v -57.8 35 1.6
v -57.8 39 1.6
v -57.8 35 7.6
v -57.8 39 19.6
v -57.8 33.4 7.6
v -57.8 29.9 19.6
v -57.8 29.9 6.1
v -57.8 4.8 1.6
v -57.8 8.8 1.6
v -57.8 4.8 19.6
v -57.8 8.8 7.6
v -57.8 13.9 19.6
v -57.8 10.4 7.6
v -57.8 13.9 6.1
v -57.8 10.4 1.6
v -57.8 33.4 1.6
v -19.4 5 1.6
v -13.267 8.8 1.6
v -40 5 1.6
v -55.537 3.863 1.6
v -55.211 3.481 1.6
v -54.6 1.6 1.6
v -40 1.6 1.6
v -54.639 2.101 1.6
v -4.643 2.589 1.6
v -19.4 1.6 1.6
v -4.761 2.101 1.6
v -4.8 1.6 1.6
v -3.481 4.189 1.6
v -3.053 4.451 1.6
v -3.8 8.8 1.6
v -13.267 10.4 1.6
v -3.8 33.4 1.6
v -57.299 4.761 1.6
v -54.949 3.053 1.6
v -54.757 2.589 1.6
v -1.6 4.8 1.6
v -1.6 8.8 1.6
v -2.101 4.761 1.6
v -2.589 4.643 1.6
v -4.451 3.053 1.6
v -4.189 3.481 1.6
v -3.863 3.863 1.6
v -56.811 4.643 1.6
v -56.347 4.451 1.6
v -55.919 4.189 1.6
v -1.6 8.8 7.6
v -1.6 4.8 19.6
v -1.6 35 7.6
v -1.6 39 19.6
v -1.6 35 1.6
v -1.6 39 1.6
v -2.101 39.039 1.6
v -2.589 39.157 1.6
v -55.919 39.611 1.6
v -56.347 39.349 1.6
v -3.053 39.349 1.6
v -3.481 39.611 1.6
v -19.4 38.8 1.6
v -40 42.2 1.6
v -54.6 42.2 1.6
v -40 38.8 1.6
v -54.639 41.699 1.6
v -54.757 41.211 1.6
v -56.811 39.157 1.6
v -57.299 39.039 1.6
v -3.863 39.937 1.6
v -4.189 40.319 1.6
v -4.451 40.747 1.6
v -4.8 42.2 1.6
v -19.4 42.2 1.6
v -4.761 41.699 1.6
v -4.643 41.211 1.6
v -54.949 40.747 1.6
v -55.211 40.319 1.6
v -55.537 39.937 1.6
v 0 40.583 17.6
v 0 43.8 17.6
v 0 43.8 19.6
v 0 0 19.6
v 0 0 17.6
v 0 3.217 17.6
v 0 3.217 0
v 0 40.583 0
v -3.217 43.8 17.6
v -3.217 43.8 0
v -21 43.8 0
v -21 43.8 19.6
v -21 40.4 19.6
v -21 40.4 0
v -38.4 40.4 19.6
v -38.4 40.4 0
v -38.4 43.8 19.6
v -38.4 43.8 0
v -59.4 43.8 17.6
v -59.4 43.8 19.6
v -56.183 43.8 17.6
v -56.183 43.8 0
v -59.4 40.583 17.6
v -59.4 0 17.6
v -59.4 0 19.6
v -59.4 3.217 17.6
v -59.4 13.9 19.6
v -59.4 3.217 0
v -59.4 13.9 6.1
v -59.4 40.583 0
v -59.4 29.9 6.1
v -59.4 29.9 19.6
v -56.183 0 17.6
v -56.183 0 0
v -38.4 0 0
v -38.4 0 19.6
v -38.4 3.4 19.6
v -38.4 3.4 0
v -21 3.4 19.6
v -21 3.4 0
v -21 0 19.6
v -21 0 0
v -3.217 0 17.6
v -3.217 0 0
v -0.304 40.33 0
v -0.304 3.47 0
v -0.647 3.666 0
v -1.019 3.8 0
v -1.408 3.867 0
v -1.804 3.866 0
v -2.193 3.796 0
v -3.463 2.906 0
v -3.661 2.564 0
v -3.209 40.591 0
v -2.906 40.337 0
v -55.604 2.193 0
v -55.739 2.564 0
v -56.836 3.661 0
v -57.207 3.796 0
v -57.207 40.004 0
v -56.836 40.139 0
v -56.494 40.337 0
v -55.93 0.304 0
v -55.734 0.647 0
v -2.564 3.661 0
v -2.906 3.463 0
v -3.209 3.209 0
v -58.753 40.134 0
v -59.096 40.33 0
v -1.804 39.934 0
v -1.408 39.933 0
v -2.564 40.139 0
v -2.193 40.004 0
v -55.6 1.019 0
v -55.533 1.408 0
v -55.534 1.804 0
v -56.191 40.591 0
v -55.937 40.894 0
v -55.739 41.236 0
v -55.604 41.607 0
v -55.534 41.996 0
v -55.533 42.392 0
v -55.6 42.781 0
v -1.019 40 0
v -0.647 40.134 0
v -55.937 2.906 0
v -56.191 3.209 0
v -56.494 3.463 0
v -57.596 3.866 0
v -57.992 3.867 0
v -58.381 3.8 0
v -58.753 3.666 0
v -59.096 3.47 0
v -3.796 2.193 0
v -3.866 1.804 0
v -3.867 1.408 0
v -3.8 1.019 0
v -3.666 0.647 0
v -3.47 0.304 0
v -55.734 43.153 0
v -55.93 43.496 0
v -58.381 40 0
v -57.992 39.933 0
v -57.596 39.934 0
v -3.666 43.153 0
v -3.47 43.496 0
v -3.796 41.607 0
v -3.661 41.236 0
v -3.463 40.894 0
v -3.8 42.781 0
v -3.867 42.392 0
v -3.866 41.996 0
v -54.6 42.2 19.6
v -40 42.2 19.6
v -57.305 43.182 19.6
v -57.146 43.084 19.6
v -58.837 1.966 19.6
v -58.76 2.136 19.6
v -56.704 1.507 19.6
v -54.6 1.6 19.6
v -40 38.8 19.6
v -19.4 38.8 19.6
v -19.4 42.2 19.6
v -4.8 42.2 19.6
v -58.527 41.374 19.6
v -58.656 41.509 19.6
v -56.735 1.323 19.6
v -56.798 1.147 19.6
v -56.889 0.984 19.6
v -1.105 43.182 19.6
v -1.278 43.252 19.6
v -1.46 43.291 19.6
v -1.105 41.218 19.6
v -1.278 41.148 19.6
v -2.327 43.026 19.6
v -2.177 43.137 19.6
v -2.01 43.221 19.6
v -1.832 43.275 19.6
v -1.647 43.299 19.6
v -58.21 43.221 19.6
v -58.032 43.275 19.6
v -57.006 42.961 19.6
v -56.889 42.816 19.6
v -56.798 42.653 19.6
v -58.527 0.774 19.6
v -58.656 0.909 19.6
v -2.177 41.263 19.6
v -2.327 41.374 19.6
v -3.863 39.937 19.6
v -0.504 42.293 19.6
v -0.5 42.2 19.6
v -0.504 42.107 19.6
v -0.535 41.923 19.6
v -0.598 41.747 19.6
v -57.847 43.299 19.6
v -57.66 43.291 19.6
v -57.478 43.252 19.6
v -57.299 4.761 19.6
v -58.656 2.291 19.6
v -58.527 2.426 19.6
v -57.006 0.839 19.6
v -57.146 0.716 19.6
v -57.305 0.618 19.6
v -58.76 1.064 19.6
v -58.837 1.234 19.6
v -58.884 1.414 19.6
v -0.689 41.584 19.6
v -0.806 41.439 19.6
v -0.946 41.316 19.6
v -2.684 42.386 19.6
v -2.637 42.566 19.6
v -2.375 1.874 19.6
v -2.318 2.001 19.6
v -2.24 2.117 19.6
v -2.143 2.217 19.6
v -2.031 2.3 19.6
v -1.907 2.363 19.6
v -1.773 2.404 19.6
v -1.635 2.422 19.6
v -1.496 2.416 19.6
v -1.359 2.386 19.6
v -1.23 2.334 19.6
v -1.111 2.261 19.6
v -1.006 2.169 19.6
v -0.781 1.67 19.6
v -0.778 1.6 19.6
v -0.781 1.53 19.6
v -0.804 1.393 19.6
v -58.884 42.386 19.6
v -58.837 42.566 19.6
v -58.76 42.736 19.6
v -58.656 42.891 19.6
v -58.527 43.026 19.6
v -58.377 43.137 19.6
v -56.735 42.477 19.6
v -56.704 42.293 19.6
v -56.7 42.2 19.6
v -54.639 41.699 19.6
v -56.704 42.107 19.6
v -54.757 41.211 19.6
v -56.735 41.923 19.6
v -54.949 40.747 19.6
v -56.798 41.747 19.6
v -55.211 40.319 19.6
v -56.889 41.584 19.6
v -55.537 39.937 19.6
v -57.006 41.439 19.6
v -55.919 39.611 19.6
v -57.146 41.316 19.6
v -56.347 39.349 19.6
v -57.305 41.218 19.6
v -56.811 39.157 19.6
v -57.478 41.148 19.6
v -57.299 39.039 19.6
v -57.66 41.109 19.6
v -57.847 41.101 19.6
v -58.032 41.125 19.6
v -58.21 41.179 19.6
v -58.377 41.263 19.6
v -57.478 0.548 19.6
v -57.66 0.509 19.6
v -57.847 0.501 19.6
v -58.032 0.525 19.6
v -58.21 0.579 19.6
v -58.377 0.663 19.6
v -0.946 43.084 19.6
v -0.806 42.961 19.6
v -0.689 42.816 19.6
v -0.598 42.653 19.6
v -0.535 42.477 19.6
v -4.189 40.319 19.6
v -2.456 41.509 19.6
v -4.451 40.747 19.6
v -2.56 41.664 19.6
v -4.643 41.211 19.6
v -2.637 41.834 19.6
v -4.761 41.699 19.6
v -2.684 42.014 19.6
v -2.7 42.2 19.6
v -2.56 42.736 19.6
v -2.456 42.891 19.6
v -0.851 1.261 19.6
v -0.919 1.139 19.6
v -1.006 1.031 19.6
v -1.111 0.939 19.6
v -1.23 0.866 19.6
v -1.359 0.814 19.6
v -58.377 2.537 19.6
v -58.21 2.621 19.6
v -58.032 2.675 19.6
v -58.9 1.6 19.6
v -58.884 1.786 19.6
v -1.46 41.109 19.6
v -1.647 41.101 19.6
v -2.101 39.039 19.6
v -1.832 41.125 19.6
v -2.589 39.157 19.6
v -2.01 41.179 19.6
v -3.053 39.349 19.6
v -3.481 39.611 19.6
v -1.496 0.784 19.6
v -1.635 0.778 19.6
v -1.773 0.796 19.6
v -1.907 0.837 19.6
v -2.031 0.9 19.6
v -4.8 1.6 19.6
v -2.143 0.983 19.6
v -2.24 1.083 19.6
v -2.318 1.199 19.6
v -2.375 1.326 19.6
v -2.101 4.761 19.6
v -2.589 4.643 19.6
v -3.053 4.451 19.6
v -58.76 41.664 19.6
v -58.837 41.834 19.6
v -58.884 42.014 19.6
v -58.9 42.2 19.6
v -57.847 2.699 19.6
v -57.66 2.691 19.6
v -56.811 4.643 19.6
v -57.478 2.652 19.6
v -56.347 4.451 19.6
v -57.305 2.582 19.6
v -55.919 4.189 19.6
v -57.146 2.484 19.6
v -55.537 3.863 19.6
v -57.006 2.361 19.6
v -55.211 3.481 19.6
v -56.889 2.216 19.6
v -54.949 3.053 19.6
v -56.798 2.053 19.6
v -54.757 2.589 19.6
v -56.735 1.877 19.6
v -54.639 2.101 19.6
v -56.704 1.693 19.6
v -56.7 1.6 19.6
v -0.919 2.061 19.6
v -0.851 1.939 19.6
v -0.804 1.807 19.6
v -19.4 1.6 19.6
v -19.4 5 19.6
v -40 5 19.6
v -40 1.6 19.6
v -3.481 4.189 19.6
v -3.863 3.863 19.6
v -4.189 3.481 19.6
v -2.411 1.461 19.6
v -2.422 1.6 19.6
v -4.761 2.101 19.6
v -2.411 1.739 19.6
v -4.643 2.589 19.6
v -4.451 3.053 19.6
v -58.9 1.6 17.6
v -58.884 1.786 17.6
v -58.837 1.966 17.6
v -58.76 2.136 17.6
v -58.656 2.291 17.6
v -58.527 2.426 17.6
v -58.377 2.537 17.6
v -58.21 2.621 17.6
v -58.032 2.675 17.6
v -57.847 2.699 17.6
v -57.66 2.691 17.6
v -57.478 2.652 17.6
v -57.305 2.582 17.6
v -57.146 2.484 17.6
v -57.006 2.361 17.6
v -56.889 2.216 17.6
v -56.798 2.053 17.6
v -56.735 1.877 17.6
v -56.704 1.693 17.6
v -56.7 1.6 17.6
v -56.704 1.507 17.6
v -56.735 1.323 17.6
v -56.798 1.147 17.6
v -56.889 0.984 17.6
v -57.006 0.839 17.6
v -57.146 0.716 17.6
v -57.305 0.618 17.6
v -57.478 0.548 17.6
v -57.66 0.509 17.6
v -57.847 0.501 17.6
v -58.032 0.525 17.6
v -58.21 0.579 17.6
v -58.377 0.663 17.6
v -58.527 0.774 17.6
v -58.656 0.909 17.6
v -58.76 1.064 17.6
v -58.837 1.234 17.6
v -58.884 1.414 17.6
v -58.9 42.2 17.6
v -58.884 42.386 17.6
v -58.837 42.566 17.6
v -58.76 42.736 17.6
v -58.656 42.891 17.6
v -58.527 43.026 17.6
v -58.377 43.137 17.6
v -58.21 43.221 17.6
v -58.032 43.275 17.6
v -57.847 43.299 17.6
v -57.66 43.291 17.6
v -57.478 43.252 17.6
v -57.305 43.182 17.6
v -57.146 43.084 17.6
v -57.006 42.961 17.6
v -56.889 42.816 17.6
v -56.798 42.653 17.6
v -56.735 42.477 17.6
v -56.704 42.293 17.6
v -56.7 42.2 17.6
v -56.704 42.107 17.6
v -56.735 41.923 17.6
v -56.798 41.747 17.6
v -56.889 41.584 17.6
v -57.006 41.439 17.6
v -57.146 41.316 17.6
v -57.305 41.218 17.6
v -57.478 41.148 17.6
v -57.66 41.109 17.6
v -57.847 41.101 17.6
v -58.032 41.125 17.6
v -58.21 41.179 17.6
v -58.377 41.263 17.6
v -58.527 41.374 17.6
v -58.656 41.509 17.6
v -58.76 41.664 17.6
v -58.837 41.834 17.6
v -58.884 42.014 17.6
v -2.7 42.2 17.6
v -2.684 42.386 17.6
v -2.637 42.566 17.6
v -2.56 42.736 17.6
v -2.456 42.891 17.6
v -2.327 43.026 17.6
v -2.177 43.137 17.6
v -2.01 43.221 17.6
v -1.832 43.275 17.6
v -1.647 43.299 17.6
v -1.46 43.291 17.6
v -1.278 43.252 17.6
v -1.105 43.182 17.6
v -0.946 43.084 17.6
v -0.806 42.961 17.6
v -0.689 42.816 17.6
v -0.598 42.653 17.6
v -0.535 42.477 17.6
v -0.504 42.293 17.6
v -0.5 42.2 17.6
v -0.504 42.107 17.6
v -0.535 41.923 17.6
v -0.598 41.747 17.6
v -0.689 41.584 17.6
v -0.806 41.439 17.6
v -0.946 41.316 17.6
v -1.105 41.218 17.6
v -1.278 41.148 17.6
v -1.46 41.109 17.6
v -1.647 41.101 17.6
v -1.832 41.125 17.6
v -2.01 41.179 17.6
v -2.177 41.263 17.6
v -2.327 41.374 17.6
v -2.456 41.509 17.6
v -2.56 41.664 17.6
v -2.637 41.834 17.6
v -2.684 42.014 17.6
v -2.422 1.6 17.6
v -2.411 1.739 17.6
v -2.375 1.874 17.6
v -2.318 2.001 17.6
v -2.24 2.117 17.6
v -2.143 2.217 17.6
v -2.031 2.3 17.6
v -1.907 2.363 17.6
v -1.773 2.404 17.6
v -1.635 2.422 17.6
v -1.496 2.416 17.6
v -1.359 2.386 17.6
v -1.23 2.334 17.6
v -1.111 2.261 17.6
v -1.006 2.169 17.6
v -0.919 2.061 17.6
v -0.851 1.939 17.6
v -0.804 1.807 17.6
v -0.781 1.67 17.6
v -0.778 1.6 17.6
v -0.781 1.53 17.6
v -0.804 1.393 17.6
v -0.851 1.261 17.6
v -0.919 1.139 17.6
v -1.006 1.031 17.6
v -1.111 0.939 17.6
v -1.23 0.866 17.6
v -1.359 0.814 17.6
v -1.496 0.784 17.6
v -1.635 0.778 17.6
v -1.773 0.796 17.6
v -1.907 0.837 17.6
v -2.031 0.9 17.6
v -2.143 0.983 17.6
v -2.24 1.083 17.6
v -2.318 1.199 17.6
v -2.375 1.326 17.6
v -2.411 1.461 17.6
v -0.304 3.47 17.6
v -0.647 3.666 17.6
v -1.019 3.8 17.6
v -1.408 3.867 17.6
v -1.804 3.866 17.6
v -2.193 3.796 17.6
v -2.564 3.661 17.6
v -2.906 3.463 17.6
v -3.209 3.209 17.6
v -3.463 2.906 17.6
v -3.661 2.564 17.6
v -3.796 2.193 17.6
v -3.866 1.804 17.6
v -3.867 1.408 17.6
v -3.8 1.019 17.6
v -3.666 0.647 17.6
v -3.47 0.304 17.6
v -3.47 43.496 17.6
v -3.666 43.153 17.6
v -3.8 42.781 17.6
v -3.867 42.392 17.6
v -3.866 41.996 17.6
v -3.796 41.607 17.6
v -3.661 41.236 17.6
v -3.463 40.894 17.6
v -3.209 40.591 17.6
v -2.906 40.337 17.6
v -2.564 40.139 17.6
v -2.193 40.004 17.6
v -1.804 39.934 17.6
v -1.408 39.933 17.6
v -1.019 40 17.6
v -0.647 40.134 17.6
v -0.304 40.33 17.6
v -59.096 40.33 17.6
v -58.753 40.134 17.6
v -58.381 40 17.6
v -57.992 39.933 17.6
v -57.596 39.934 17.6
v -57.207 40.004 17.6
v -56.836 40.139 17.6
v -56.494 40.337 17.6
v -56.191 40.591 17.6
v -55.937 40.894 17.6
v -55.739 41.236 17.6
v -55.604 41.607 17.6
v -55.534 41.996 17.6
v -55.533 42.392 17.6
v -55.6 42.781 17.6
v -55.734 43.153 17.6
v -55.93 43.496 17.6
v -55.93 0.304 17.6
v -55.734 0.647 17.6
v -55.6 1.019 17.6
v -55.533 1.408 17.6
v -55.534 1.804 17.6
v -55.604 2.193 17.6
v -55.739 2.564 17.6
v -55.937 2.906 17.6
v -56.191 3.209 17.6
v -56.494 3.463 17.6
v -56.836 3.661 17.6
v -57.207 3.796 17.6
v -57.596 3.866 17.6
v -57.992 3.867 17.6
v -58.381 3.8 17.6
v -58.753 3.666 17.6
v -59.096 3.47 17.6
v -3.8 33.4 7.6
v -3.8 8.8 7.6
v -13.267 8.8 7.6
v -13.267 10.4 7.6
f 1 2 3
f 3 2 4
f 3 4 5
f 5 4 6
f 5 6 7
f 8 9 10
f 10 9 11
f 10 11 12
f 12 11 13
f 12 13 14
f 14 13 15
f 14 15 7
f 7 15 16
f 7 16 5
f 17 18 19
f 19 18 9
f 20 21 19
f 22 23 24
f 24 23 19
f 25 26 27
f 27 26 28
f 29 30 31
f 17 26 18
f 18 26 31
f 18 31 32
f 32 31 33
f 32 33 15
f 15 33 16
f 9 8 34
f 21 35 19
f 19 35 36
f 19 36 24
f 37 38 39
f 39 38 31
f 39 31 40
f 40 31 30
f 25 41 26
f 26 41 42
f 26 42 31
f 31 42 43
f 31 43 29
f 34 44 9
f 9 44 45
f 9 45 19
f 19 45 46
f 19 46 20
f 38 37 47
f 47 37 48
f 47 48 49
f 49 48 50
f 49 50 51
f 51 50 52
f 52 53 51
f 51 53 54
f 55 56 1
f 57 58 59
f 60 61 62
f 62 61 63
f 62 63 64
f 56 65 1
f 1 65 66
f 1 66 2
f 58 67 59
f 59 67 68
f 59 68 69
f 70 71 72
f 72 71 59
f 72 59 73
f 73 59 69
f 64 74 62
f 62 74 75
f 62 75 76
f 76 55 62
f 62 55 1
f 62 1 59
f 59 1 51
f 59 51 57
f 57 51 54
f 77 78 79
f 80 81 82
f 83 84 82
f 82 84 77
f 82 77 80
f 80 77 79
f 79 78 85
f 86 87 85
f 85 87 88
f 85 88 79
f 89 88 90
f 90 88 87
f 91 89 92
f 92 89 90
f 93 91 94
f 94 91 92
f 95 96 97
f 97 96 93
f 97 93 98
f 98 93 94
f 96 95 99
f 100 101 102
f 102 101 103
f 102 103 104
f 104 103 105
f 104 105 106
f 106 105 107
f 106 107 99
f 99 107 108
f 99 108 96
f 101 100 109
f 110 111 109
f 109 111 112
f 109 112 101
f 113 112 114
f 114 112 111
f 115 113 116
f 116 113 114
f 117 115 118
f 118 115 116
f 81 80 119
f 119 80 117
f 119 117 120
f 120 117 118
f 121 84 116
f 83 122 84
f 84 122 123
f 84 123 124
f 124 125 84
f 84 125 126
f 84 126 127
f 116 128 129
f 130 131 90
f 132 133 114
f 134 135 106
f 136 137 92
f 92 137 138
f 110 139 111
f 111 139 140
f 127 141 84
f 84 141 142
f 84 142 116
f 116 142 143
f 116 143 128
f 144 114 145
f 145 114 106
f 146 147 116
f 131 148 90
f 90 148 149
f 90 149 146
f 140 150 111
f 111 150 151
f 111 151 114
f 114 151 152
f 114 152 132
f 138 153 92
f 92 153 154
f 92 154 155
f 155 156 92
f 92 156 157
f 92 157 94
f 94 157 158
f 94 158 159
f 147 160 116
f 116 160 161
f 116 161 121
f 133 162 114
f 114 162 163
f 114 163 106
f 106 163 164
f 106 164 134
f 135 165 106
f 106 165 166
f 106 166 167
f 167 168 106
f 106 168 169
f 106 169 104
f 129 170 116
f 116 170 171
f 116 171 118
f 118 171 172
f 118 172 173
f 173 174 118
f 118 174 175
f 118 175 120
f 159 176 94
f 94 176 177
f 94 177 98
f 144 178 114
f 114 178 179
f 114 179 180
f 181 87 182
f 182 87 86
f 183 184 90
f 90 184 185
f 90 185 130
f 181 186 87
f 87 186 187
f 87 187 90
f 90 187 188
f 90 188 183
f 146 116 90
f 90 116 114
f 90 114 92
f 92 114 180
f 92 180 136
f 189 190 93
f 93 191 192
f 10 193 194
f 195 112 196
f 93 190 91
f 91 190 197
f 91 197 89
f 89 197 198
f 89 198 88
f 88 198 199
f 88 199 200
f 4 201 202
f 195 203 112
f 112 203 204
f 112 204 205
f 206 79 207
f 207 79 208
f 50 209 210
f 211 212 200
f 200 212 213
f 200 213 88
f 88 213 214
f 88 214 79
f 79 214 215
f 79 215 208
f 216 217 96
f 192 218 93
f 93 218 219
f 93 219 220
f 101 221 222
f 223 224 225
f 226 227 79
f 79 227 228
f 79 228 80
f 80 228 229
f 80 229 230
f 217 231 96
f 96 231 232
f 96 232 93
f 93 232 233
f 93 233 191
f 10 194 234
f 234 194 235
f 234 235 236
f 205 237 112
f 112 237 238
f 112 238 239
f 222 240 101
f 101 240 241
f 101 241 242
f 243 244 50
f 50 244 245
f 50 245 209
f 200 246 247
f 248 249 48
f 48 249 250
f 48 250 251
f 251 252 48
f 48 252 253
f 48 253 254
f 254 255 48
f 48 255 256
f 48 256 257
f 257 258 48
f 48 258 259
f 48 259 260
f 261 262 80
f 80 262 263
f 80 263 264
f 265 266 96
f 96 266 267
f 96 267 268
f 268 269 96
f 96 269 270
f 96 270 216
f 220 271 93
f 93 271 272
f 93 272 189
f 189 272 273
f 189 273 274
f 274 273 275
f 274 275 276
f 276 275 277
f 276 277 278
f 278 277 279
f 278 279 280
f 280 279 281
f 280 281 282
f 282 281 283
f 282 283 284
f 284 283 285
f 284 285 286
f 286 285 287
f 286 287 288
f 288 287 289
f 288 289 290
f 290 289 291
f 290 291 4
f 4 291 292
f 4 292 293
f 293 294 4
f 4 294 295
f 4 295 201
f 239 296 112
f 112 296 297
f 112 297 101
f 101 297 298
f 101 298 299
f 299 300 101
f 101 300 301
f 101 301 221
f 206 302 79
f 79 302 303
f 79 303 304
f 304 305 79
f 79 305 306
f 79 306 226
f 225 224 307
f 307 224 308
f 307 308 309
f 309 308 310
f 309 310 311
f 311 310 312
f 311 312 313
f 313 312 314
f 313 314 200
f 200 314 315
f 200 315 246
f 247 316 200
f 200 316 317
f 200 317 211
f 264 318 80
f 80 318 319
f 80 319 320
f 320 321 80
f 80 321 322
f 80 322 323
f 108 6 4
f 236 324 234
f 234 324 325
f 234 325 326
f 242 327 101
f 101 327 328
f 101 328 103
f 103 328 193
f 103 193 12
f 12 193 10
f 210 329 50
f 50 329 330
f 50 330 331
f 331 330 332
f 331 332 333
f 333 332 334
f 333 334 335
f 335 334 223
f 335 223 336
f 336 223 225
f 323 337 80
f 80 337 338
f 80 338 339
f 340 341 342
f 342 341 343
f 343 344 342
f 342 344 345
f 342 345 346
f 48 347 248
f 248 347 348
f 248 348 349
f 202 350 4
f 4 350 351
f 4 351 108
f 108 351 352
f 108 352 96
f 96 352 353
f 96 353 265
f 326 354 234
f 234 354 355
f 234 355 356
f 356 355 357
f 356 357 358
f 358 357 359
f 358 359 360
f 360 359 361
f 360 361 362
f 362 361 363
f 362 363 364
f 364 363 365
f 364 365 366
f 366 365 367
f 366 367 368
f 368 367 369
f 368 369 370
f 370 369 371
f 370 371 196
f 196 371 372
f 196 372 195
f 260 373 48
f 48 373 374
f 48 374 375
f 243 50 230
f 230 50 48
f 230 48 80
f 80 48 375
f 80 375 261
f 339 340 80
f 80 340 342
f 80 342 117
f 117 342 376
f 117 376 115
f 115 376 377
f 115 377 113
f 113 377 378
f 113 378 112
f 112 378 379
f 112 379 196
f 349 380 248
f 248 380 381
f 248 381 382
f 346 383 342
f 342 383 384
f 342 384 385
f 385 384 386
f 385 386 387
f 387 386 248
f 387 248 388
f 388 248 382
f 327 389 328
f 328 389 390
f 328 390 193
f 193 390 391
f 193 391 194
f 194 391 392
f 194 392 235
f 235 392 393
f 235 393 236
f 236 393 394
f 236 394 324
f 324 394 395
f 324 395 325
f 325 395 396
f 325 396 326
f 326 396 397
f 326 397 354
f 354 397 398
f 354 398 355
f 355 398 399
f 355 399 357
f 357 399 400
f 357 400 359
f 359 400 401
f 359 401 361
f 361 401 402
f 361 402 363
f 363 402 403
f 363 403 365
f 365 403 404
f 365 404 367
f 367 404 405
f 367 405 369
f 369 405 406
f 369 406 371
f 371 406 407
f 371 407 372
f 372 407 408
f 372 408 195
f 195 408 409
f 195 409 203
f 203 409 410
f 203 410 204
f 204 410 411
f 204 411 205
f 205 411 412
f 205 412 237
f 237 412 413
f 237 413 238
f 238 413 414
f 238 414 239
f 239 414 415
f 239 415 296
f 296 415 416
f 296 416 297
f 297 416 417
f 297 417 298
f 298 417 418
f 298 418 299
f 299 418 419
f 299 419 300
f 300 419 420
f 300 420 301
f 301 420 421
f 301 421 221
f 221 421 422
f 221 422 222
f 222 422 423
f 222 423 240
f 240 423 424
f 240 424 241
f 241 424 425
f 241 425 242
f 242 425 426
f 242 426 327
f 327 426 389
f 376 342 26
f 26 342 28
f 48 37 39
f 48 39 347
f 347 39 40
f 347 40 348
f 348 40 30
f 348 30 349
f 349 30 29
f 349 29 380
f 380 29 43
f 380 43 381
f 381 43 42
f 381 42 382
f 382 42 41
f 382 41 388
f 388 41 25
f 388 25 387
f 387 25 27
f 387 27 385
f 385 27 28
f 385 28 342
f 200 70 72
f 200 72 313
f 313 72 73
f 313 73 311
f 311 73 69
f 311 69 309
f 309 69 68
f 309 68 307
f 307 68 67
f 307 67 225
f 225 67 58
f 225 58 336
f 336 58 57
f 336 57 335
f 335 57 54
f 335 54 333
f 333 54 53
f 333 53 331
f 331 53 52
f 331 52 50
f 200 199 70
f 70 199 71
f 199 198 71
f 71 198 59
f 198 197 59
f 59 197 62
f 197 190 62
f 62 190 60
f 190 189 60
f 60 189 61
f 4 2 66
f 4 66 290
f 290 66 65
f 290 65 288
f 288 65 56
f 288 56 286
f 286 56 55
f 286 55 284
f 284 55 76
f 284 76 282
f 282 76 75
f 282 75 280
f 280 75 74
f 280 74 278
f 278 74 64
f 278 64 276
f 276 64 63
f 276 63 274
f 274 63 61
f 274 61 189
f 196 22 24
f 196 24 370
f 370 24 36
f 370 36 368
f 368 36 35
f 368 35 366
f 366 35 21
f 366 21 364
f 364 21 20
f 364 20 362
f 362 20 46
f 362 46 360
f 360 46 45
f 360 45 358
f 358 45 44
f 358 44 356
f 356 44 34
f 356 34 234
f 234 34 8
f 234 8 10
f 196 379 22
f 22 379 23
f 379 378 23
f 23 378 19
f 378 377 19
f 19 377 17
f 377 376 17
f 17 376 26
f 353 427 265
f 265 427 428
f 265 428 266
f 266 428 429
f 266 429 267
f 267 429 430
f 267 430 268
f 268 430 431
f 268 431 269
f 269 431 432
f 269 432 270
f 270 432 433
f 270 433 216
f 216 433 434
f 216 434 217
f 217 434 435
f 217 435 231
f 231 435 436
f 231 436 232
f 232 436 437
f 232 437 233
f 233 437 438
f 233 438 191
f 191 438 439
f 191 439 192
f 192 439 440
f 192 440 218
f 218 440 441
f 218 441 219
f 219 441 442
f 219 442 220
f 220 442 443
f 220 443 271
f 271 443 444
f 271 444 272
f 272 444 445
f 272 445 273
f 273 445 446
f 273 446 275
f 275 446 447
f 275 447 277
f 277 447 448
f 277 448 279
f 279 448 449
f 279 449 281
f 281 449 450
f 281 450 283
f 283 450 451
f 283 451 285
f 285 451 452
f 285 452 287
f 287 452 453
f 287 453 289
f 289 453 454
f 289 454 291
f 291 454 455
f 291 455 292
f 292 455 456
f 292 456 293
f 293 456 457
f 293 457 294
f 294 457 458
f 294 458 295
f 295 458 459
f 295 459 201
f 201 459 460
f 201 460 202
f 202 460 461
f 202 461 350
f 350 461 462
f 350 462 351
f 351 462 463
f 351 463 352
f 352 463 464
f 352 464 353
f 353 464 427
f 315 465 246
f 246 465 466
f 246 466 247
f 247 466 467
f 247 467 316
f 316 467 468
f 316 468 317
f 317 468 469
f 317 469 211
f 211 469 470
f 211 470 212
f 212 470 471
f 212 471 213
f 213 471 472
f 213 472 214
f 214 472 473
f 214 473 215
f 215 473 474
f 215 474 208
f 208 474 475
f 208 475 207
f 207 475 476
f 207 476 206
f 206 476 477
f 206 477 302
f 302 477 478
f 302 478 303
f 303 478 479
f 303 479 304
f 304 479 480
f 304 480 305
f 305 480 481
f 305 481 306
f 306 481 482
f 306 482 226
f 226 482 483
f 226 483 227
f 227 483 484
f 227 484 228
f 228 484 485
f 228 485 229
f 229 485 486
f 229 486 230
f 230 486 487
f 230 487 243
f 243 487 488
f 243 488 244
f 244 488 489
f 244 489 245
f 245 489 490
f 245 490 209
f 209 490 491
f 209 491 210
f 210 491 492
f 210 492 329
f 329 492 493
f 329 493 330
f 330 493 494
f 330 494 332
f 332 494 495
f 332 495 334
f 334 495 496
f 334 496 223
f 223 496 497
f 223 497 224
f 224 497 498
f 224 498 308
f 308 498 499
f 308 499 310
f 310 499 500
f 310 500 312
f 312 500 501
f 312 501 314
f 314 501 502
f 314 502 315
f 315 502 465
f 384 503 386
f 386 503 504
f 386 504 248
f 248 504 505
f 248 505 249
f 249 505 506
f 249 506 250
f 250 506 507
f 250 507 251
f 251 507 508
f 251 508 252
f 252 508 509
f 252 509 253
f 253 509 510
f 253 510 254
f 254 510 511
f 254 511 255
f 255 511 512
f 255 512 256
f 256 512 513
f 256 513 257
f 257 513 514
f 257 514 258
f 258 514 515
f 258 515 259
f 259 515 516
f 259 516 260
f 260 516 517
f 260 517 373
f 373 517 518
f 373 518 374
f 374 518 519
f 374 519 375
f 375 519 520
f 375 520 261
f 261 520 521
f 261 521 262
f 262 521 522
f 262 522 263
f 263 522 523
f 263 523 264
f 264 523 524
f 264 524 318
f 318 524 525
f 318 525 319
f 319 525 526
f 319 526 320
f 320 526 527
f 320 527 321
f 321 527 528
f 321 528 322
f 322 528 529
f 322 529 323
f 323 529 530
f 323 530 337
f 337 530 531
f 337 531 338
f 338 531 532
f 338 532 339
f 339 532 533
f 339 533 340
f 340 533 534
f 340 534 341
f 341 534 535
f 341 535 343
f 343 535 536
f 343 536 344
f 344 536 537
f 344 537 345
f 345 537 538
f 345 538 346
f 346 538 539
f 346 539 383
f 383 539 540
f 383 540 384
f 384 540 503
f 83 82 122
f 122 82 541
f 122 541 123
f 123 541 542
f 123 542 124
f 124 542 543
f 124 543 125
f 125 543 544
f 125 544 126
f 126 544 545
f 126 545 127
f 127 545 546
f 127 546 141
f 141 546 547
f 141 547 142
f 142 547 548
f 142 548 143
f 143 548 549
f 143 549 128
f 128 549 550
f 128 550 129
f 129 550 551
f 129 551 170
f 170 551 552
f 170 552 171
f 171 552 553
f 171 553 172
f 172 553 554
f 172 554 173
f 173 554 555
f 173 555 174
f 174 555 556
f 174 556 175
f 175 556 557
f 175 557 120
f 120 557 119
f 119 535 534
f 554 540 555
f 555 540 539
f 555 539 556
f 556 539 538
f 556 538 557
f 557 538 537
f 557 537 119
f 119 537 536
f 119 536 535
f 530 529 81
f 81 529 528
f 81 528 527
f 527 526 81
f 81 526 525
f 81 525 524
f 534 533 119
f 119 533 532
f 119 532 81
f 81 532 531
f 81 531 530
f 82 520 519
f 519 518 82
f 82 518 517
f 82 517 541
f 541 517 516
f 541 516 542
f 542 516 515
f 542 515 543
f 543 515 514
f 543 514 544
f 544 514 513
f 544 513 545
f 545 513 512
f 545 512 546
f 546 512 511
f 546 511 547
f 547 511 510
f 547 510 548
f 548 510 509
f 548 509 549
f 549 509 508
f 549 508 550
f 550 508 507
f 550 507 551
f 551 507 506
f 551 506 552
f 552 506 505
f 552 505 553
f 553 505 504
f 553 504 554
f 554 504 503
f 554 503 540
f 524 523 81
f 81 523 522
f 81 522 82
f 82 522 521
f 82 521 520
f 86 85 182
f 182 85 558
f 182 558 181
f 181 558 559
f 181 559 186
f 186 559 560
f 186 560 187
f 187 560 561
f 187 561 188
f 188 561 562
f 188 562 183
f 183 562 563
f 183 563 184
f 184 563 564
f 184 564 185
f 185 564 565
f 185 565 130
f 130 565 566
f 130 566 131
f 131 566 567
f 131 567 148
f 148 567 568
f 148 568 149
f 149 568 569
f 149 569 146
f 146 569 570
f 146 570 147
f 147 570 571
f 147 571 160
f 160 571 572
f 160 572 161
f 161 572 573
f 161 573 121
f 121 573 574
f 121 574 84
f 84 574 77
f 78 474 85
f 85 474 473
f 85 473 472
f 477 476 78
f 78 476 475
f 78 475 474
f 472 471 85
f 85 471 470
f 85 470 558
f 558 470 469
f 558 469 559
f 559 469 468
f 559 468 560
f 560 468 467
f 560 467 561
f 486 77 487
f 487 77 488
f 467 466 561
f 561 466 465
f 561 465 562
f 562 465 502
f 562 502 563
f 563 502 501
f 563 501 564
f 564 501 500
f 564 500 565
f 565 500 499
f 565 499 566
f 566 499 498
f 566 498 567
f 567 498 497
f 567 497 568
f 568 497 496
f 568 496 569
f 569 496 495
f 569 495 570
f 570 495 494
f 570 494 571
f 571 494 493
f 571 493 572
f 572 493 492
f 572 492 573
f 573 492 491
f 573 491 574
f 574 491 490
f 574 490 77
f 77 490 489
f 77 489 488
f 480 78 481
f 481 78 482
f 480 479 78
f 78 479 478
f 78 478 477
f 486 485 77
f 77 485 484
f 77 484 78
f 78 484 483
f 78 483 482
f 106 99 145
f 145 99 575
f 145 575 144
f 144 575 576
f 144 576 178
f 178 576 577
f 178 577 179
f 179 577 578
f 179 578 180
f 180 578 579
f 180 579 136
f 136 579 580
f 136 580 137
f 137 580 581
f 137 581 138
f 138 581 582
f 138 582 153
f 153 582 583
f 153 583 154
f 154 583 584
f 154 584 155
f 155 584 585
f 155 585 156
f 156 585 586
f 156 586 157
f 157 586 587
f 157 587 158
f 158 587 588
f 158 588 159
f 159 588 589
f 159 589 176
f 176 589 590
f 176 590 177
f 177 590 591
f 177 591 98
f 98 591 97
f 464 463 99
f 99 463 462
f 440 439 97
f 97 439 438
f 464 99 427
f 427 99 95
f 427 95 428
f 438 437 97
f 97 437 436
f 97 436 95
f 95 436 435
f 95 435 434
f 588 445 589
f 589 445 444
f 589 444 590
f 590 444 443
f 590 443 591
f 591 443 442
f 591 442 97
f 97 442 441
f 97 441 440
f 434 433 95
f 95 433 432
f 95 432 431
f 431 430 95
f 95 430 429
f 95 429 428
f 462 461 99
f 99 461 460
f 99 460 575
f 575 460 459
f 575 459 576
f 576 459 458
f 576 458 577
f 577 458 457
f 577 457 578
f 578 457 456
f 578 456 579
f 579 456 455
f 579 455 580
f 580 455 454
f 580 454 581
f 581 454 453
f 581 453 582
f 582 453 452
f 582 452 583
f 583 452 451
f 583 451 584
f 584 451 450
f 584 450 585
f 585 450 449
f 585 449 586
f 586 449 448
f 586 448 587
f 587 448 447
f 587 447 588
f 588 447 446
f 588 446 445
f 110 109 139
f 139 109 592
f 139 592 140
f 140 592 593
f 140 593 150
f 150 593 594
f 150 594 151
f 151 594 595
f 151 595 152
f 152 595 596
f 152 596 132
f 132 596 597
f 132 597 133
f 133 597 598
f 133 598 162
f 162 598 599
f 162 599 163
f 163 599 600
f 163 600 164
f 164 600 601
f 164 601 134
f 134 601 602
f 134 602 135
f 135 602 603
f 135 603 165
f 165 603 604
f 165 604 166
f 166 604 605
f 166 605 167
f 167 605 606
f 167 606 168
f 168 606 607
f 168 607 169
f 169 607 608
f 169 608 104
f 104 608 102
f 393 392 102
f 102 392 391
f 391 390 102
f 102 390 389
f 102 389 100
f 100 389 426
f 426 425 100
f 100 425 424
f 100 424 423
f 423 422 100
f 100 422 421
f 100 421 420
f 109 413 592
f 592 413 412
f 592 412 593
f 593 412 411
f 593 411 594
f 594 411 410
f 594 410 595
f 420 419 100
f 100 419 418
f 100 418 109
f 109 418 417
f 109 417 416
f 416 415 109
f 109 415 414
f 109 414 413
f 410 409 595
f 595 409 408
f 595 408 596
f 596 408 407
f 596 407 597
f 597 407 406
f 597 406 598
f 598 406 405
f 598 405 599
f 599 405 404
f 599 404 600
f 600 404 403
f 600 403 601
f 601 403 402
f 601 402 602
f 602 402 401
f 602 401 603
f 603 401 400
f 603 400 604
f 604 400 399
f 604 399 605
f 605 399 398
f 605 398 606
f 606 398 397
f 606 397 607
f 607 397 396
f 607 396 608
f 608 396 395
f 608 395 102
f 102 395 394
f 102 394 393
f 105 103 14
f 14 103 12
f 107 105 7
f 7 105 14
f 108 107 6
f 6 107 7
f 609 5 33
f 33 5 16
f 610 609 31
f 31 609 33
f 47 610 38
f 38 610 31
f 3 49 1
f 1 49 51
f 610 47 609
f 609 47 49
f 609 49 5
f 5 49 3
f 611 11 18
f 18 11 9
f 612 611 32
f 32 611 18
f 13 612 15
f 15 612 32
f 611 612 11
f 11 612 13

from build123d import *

# Parameters (mm, degrees)
BOSS_EXTRUDE1_DEPTH = 1.6
SKETCH2_R           = 1.1
SKETCH2_R_2         = 0.822376014
BOSS_EXTRUDE2_DEPTH = 18
CUT_EXTRUDE1_START  = -2
SKETCH4_R           = 2.275
CUT_EXTRUDE1_DEPTH  = 18
SKETCH5_W           = 13.5
SKETCH5_H           = 16
CUT_EXTRUDE2_DEPTH  = 18
SKETCH6_W           = 44.533379649
SKETCH6_H           = 1.6
BOSS_EXTRUDE3_DEPTH = 6


with BuildPart() as part:
    # Sketch1 → Boss-Extrude1 (new body)
    with BuildSketch(Plane.XY):
        Polygon((-38.4, 43.8), (-38.4, 40.4), (-21, 40.4), (-21, 43.8), (0, 43.8), (0, 0), (-21, 0), (-21, 3.4), (-38.4, 3.4), (-38.4, 0), (-59.4, 0), (-59.4, 43.8), align=None)
    extrude(amount=BOSS_EXTRUDE1_DEPTH)

    # Sketch2 → Boss-Extrude2 (add)
    with BuildSketch(Plane.XY.offset(1.6)):
        Polygon((-59.4, 43.8), (-38.4, 43.8), (-38.4, 40.4), (-21, 40.4), (-21, 43.8), (0, 43.8), (0, 0), (-21, 0), (-21, 3.4), (-38.4, 3.4), (-38.4, 0), (-59.4, 0), align=None)
        with Locations((-57.8, 1.6)):
            Circle(SKETCH2_R, mode=Mode.SUBTRACT)
        with Locations((-57.8, 42.2)):
            Circle(SKETCH2_R, mode=Mode.SUBTRACT)
        with Locations((-1.6, 42.2)):
            Circle(SKETCH2_R, mode=Mode.SUBTRACT)
        with Locations((-1.6, 1.6)):
            Circle(SKETCH2_R_2, mode=Mode.SUBTRACT)
        with BuildLine():
            Line((-54.6, 42.2), (-40, 42.2))
            Line((-40, 42.2), (-40, 38.8))
            Line((-40, 38.8), (-19.4, 38.8))
            Line((-19.4, 38.8), (-19.4, 42.2))
            Line((-19.4, 42.2), (-4.8, 42.2))
            ThreePointArc((-4.8, 42.2), (-3.8627417, 39.9372583), (-1.6, 39))
            Line((-1.6, 39), (-1.6, 4.8))
            ThreePointArc((-1.6, 4.8), (-3.8627417, 3.8627417), (-4.8, 1.6))
            Line((-4.8, 1.6), (-19.4, 1.6))
            Line((-19.4, 1.6), (-19.4, 5))
            Line((-19.4, 5), (-40, 5))
            Line((-40, 5), (-40, 1.6))
            Line((-40, 1.6), (-54.6, 1.6))
            ThreePointArc((-54.6, 1.6), (-55.5372583, 3.8627417), (-57.8, 4.8))
            Line((-57.8, 4.8), (-57.8, 39))
            ThreePointArc((-57.8, 39), (-55.5372583, 39.9372583), (-54.6, 42.2))
        make_face(mode=Mode.SUBTRACT)
    extrude(amount=BOSS_EXTRUDE2_DEPTH)

    # Sketch4 → Cut-Extrude1 (cut)
    with BuildSketch(Plane.XY.offset(19.6).offset(CUT_EXTRUDE1_START)):
        with Locations((-57.8, 42.2)):
            Circle(SKETCH4_R)
        with Locations((-1.6, 42.2)):
            Circle(SKETCH4_R)
        with Locations((-57.8, 1.6)):
            Circle(SKETCH4_R)
        with Locations((-1.6, 1.6)):
            Circle(SKETCH4_R)
    extrude(amount=-CUT_EXTRUDE1_DEPTH, mode=Mode.SUBTRACT)

    # Sketch5 → Cut-Extrude2 (cut)
    with BuildSketch(Plane.ZY.offset(59.4)):
        with Locations((12.85, 21.9)):
            Rectangle(SKETCH5_W, SKETCH5_H)
    extrude(amount=-CUT_EXTRUDE2_DEPTH, mode=Mode.SUBTRACT)

    # Sketch6 → Boss-Extrude3 (add)
    with BuildSketch(Plane.XY.offset(1.6)):
        Polygon((-57.8, 33.4), (-3.8, 33.4), (-3.8, 10.4), (-3.8, 8.8), (-1.6, 8.8), (-1.6, 35), (-57.8, 35), align=None)
        with Locations((-35.533310176, 9.6)):
            Rectangle(SKETCH6_W, SKETCH6_H)
    extrude(amount=BOSS_EXTRUDE3_DEPTH)


solid = part.part
